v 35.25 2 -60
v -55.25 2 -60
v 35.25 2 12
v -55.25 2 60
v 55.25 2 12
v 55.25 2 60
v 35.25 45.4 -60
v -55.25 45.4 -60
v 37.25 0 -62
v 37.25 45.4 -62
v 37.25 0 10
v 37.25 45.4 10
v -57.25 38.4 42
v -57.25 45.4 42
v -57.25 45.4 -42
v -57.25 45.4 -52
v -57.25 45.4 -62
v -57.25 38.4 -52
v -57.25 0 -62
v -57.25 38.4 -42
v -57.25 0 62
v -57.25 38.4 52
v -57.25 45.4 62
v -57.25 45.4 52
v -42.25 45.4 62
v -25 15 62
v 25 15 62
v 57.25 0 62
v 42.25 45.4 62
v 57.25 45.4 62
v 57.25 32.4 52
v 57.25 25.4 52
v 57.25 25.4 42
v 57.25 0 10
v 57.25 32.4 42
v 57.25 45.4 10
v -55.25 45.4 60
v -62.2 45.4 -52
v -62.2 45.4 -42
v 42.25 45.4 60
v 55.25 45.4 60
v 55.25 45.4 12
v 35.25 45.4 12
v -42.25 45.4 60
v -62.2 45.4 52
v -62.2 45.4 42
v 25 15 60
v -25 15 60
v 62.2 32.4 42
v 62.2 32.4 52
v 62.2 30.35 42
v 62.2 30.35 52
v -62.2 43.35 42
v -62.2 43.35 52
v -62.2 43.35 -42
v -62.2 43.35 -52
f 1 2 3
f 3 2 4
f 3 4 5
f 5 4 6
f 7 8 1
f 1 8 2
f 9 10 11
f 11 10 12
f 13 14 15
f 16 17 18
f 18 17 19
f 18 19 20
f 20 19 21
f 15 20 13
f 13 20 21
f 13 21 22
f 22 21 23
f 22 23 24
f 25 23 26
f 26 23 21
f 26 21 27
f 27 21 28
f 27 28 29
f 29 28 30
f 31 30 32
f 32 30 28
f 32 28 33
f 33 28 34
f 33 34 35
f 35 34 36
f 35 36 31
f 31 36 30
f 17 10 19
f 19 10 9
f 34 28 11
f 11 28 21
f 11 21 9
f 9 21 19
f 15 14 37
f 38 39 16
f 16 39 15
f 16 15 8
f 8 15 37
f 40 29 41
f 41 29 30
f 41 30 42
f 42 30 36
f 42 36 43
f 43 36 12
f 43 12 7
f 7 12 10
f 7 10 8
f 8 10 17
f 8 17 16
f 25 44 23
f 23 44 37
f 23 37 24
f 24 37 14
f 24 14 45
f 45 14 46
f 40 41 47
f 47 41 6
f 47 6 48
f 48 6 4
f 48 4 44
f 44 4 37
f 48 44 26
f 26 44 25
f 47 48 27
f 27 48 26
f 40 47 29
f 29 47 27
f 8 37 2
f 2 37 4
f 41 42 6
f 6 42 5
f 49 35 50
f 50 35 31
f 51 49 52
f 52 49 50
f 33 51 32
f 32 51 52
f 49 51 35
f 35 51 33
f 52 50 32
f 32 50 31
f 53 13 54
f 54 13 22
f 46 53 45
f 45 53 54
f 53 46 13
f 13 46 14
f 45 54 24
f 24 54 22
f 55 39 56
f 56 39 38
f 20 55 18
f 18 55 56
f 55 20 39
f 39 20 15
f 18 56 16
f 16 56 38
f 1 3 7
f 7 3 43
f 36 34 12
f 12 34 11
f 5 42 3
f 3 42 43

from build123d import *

# Parameters (mm, degrees)
RESSALTO_EXTRUS_O1_DEPTH  = 2
ESBO_O2_W                 = 94.5
ESBO_O2_H                 = 45.4
RESSALTO_EXTRUS_O2_DEPTH  = 2
RESSALTO_EXTRUS_O3_DEPTH  = 2
ESBO_O4_W                 = 124
ESBO_O4_H                 = 45.4
RESSALTO_EXTRUS_O4_DEPTH  = 2
ESBO_O5_W                 = 50
ESBO_O5_H                 = 45.4
RESSALTO_EXTRUS_O5_DEPTH  = 2
RESSALTO_EXTRUS_O6_START  = -10
RESSALTO_EXTRUS_O6_DEPTH  = 10
RESSALTO_EXTRUS_O7_START  = -10
RESSALTO_EXTRUS_O7_DEPTH  = 10
RESSALTO_EXTRUS_O8_START  = -10
RESSALTO_EXTRUS_O8_DEPTH  = 10
ESBO_O11_W                = 22
ESBO_O11_H                = 45.4
RESSALTO_EXTRUS_O9_DEPTH  = 2
ESBO_O14_W                = 72
ESBO_O14_H                = 45.4
RESSALTO_EXTRUS_O14_DEPTH = 2


with BuildPart() as part:
    # Esboço1 → Ressalto-extrusão1 (new body)
    with BuildSketch(Plane(origin=(0, 0, 0), x_dir=(1, 0, 0), z_dir=(0, 1, 0))):
        Polygon((57.25, -12), (37.25, -12), (37.25, 62), (-57.25, 62), (-57.25, -62), (57.25, -62), align=None)
    extrude(amount=RESSALTO_EXTRUS_O1_DEPTH)

    # Esboço2 → Ressalto-extrusão2 (add)
    with BuildSketch(Plane(origin=(0, 0, -62), x_dir=(-1, 0, 0), z_dir=(0, 0, -1))):
        with Locations((10, 22.7)):
            Rectangle(ESBO_O2_W, ESBO_O2_H)
    extrude(amount=-RESSALTO_EXTRUS_O2_DEPTH)

    # Esboço3 → Ressalto-extrusão3 (add)
    with BuildSketch(Plane.XY.offset(62)):
        Polygon((-57.25, 0), (-57.25, 45.4), (-42.25, 45.4), (-25, 15), (25, 15), (42.25, 45.4), (57.25, 45.4), (57.25, 0), align=None)
    extrude(amount=-RESSALTO_EXTRUS_O3_DEPTH)

    # Esboço4 → Ressalto-extrusão4 (add)
    with BuildSketch(Plane.ZY.offset(57.25)):
        with Locations((0, 22.7)):
            Rectangle(ESBO_O4_W, ESBO_O4_H)
    extrude(amount=-RESSALTO_EXTRUS_O4_DEPTH)

    # Esboço5 → Ressalto-extrusão5 (add)
    with BuildSketch(Plane(origin=(57.25, 0, 0), x_dir=(0, 0, -1), z_dir=(1, 0, 0))):
        with Locations((-37, 22.7)):
            Rectangle(ESBO_O5_W, ESBO_O5_H)
    extrude(amount=-RESSALTO_EXTRUS_O5_DEPTH)

    # Esboço6 → Ressalto-extrusão6 (add)
    with BuildSketch(Plane.XY.offset(62).offset(RESSALTO_EXTRUS_O6_START)):
        Polygon((57.25, 25.4), (62.199747468, 30.349747468), (62.199747468, 32.4), (57.25, 32.4), align=None)
    extrude(amount=-RESSALTO_EXTRUS_O6_DEPTH)

    # Esboço8 → Ressalto-extrusão7 (add)
    with BuildSketch(Plane.XY.offset(62).offset(RESSALTO_EXTRUS_O7_START)):
        Polygon((-57.25, 38.4), (-62.199747468, 43.349747468), (-62.199747468, 45.4), (-57.25, 45.4), align=None)
    extrude(amount=-RESSALTO_EXTRUS_O7_DEPTH)

    # Esboço10 → Ressalto-extrusão8 (add)
    with BuildSketch(Plane(origin=(0, 0, -62), x_dir=(-1, 0, 0), z_dir=(0, 0, -1)).offset(RESSALTO_EXTRUS_O8_START)):
        Polygon((57.25, 45.4), (57.25, 38.4), (62.199747468, 43.349747468), (62.199747468, 45.4), align=None)
    extrude(amount=-RESSALTO_EXTRUS_O8_DEPTH)

    # Esboço11 → Ressalto-extrusão9 (add)
    with BuildSketch(Plane(origin=(0, 0, 12), x_dir=(-1, 0, 0), z_dir=(0, 0, -1))):
        with Locations((-46.25, 22.7)):
            Rectangle(ESBO_O11_W, ESBO_O11_H)
    extrude(amount=RESSALTO_EXTRUS_O9_DEPTH)

    # Esboço14 → Ressalto-extrusão14 (add)
    with BuildSketch(Plane(origin=(37.25, 0, 0), x_dir=(0, 0, -1), z_dir=(1, 0, 0))):
        with Locations((26, 22.7)):
            Rectangle(ESBO_O14_W, ESBO_O14_H)
    extrude(amount=-RESSALTO_EXTRUS_O14_DEPTH)


solid = part.part
